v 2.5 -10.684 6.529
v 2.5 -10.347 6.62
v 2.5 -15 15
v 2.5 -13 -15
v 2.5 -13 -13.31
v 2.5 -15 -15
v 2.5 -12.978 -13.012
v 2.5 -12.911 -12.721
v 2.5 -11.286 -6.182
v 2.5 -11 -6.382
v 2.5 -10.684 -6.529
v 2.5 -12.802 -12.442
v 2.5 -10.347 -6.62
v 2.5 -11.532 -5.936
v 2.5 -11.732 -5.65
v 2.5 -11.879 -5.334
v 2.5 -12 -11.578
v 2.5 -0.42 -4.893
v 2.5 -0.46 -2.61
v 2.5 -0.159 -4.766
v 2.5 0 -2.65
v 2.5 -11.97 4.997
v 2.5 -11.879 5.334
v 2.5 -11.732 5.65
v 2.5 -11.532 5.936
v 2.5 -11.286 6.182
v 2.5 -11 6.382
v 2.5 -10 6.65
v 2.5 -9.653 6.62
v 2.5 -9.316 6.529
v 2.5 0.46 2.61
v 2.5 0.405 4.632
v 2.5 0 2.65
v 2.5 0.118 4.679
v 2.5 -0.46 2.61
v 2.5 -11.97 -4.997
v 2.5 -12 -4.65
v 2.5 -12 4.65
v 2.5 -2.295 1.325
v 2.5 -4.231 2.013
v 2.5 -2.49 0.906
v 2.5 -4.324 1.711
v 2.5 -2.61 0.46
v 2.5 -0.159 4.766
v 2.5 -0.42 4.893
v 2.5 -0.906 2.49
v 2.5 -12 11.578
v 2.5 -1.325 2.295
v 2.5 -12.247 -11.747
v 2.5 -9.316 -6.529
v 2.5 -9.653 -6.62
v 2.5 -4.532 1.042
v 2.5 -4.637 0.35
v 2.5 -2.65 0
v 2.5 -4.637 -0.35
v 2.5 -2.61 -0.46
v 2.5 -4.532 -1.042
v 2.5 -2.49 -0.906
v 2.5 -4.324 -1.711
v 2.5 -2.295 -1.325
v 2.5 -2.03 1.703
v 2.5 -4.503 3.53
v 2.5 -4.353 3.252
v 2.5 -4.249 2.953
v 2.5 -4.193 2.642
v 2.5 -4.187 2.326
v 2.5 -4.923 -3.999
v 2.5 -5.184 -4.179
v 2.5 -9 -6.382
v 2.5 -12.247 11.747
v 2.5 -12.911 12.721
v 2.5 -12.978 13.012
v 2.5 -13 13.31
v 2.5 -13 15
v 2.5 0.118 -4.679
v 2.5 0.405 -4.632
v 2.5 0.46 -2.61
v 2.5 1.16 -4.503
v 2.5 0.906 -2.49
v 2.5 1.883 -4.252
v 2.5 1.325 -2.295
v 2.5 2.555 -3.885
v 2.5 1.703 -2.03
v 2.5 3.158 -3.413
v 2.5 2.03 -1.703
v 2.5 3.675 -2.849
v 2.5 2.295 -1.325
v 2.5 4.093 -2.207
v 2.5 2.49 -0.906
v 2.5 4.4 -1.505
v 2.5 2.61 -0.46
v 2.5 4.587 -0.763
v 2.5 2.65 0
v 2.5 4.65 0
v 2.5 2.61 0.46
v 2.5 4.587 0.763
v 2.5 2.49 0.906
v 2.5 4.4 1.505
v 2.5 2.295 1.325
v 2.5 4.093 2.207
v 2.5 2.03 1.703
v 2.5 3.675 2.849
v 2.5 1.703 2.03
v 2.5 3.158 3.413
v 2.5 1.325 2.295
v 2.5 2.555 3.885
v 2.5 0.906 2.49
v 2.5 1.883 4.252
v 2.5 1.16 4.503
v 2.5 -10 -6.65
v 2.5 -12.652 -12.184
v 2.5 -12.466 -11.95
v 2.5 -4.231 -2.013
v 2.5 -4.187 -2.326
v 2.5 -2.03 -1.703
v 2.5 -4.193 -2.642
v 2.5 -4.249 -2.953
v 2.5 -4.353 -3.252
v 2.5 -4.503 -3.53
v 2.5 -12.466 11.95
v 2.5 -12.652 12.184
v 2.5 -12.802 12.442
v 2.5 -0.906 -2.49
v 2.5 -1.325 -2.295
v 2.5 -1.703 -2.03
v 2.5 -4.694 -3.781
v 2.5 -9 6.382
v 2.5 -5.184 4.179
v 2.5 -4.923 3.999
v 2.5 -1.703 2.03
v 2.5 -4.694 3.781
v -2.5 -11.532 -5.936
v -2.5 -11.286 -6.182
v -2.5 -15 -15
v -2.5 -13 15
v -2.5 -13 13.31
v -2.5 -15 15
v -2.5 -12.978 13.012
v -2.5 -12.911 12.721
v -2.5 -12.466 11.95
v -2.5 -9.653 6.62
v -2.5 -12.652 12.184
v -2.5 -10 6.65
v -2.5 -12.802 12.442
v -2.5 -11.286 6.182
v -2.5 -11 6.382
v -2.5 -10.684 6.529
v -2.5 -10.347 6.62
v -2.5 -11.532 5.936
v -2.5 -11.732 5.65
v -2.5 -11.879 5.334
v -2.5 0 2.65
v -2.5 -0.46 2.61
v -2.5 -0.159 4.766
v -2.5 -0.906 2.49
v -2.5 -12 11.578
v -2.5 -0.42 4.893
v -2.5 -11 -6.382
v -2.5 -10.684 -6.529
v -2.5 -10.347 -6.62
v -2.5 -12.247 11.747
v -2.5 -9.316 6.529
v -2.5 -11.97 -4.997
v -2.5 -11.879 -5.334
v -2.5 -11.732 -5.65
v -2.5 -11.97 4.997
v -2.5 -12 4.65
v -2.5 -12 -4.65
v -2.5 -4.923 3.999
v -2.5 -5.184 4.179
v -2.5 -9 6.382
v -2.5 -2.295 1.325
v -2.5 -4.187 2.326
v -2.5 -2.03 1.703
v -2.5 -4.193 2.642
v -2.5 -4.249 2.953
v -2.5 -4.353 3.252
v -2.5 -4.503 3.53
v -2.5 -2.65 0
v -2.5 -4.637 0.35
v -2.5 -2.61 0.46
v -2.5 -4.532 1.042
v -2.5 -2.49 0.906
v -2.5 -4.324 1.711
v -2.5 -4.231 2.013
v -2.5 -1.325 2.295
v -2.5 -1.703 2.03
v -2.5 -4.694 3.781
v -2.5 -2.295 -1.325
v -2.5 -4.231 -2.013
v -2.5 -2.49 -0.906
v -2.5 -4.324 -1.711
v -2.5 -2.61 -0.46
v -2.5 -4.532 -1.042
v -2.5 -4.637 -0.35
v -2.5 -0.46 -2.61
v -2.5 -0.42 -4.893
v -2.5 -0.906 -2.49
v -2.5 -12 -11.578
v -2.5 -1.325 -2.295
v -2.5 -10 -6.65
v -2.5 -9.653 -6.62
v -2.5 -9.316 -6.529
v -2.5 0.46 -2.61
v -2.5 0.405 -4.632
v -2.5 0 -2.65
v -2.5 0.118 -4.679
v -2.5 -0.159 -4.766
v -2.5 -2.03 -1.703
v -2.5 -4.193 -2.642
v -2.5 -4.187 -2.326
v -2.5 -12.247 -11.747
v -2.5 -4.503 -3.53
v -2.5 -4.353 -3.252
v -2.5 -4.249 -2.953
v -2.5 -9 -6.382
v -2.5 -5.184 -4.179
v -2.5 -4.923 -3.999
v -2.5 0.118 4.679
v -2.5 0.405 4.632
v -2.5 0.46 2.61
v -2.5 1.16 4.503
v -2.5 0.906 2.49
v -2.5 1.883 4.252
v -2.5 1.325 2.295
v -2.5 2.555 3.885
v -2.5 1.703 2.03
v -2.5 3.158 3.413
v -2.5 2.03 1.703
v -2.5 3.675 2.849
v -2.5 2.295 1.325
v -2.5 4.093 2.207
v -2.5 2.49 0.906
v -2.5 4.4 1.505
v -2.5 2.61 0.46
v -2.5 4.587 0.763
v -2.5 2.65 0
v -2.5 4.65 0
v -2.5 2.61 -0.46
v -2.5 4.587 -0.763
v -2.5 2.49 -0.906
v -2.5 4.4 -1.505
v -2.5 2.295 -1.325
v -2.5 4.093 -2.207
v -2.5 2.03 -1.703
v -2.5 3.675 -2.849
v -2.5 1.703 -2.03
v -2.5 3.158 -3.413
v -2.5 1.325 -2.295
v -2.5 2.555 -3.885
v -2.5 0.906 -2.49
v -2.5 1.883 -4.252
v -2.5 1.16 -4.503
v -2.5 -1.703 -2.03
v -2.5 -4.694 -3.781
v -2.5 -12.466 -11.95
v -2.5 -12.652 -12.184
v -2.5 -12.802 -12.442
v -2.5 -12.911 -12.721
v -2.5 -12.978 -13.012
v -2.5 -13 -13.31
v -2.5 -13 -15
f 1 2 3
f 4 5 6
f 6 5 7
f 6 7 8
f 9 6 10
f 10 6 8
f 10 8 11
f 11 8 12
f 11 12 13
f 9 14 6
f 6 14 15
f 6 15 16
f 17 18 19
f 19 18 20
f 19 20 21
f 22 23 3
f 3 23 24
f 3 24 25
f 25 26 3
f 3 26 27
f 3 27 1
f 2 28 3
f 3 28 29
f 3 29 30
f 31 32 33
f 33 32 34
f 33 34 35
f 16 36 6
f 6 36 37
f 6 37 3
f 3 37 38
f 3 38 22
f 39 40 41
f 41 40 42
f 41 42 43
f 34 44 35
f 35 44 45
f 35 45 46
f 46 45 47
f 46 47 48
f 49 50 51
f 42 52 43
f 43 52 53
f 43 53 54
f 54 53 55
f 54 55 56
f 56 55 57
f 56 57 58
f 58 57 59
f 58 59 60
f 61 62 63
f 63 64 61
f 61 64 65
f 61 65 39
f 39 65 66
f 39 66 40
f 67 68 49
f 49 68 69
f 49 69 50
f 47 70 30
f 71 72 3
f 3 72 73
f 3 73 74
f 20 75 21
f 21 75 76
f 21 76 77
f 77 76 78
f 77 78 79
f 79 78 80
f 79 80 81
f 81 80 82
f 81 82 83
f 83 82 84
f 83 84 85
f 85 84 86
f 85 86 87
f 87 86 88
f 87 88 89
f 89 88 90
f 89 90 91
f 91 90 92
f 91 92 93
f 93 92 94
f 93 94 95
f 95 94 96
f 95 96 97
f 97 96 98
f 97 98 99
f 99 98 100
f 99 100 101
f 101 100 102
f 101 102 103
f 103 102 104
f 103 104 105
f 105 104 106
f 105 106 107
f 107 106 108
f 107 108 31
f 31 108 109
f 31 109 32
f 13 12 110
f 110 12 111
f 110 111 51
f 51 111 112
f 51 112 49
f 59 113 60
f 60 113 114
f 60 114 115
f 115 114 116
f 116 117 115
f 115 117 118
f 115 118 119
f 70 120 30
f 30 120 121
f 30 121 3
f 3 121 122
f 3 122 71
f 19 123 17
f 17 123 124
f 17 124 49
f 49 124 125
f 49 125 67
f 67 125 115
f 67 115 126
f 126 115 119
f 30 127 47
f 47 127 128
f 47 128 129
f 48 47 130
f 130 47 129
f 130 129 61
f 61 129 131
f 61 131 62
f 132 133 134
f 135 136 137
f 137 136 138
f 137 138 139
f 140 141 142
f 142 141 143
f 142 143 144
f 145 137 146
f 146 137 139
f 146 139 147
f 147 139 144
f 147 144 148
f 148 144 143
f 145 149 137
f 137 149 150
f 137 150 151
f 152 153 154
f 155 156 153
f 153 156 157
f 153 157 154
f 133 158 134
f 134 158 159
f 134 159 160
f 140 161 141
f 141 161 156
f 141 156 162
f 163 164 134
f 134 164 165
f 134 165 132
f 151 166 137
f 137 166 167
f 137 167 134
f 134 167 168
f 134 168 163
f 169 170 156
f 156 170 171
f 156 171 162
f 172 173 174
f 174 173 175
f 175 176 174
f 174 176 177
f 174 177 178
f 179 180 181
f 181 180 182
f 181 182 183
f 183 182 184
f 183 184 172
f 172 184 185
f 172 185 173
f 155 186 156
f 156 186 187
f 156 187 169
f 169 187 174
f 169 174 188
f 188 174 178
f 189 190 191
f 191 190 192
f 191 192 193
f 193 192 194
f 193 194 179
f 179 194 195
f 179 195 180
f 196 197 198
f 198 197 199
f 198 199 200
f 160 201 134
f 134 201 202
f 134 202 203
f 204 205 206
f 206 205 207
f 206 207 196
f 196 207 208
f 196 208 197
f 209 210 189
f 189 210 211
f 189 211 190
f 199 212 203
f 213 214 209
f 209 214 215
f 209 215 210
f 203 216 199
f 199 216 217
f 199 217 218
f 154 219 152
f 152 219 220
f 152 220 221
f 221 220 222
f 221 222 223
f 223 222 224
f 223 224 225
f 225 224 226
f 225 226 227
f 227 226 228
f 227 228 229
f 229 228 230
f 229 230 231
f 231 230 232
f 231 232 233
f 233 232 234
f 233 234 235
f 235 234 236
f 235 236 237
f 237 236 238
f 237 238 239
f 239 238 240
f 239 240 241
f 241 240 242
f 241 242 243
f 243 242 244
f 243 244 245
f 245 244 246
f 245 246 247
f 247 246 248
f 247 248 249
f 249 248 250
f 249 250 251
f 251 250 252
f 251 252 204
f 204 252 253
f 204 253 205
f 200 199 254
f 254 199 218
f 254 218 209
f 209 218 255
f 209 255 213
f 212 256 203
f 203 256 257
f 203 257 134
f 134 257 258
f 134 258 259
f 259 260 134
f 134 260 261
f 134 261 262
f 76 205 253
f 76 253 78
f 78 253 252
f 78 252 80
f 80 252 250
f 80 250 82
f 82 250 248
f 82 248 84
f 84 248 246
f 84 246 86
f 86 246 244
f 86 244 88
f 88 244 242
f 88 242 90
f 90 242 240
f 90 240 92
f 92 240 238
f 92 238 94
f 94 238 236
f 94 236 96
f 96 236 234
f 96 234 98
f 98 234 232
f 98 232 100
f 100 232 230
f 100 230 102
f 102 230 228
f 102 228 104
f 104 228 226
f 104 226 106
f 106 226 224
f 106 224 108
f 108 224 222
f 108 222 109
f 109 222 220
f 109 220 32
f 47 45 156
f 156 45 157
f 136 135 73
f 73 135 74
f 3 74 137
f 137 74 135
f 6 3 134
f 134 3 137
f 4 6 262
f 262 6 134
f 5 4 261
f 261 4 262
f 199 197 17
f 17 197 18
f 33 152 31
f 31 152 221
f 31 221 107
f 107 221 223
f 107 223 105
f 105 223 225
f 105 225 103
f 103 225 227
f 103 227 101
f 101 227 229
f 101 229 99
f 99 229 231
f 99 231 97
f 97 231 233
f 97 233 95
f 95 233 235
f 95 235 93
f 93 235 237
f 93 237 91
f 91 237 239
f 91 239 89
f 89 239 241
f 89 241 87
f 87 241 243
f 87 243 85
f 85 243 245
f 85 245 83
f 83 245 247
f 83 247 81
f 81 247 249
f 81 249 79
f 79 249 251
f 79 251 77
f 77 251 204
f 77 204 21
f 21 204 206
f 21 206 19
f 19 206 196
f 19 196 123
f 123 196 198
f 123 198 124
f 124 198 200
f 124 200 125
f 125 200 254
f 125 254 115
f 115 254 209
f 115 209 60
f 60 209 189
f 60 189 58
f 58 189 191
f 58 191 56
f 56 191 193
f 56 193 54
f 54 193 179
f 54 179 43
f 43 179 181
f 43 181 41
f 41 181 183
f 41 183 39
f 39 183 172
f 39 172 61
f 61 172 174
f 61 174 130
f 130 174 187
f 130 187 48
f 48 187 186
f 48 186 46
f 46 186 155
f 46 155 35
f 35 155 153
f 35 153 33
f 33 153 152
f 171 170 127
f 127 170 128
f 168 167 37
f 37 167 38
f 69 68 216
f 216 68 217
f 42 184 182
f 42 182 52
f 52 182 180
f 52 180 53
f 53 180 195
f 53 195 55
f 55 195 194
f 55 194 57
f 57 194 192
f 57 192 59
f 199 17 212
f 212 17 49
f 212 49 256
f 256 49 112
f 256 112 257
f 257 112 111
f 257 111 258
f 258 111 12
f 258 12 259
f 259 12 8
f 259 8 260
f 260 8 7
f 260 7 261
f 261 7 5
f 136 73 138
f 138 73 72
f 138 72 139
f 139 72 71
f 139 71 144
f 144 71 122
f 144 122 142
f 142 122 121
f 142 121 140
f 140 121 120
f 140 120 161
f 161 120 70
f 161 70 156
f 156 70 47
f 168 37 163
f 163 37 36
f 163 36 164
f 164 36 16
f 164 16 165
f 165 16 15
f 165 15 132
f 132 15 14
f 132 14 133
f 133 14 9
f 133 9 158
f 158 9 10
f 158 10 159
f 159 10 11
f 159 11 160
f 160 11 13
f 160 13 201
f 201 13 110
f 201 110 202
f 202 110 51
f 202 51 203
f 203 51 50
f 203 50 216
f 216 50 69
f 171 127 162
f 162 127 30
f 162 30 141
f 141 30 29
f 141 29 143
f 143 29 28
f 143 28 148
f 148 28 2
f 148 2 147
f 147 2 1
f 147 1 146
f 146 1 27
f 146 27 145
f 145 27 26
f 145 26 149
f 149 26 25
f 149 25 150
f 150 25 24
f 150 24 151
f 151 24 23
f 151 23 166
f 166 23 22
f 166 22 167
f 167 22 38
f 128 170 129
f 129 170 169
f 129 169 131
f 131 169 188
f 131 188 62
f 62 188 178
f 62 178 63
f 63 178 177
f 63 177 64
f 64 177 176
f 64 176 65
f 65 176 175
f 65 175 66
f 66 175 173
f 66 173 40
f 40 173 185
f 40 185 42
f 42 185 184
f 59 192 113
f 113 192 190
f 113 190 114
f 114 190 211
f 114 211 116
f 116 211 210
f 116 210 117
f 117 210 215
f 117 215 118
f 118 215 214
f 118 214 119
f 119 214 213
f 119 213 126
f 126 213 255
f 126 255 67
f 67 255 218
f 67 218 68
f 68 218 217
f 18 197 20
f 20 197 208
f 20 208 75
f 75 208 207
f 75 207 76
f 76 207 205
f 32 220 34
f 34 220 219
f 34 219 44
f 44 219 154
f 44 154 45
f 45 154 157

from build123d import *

# Parameters (mm, degrees)
SKETCH_1_R      = 2.65
EXTRUDE_1_DEPTH = 2.5
FILLET_1_R      = 2


with BuildPart() as part:
    # 草图1 → 凸台-拉伸1 (new, symmetric)
    with BuildSketch(Plane(origin=(0, 0, 0), x_dir=(0, 0, -1), z_dir=(1, 0, 0))):
        with BuildLine():
            Line((-4.65, 0), (-12.155553499, -13))
            Line((-12.155553499, -13), (-15, -13))
            Line((-15, -13), (-15, -15))
            Line((-15, -15), (15, -15))
            Line((15, -15), (15, -13))
            Line((15, -13), (12.155553499, -13))
            Line((12.155553499, -13), (4.65, 0))
            ThreePointArc((4.65, 0), (0, 4.65), (-4.65, 0))
        make_face()
        Circle(SKETCH_1_R, mode=Mode.SUBTRACT)
        with BuildLine():
            Line((-8.114101615, -12), (8.114101615, -12))
            Line((8.114101615, -12), (3.157006961, -3.4140602))
            ThreePointArc((3.157006961, -3.4140602), (0, -4.65), (-3.157006961, -3.4140602))
            Line((-3.157006961, -3.4140602), (-8.114101615, -12))
        make_face(mode=Mode.SUBTRACT)
    extrude(amount=EXTRUDE_1_DEPTH, both=True)

    # 圆角1
    fillet_1_edges = [part.edges().sort_by_distance(p)[0] for p in [
        (0, 0, -4.65),
        (0, -13, -12.155553499),
        (0, -13, 12.155553499),
        (0, 0, 4.65),
        (0, -3.4140602, 3.157006961),
        (0, -12, 8.114101615),
        (0, -12, -8.114101615),
        (0, -3.4140602, -3.157006961),
    ]]
    fillet(fillet_1_edges, radius=FILLET_1_R)


solid = part.part
